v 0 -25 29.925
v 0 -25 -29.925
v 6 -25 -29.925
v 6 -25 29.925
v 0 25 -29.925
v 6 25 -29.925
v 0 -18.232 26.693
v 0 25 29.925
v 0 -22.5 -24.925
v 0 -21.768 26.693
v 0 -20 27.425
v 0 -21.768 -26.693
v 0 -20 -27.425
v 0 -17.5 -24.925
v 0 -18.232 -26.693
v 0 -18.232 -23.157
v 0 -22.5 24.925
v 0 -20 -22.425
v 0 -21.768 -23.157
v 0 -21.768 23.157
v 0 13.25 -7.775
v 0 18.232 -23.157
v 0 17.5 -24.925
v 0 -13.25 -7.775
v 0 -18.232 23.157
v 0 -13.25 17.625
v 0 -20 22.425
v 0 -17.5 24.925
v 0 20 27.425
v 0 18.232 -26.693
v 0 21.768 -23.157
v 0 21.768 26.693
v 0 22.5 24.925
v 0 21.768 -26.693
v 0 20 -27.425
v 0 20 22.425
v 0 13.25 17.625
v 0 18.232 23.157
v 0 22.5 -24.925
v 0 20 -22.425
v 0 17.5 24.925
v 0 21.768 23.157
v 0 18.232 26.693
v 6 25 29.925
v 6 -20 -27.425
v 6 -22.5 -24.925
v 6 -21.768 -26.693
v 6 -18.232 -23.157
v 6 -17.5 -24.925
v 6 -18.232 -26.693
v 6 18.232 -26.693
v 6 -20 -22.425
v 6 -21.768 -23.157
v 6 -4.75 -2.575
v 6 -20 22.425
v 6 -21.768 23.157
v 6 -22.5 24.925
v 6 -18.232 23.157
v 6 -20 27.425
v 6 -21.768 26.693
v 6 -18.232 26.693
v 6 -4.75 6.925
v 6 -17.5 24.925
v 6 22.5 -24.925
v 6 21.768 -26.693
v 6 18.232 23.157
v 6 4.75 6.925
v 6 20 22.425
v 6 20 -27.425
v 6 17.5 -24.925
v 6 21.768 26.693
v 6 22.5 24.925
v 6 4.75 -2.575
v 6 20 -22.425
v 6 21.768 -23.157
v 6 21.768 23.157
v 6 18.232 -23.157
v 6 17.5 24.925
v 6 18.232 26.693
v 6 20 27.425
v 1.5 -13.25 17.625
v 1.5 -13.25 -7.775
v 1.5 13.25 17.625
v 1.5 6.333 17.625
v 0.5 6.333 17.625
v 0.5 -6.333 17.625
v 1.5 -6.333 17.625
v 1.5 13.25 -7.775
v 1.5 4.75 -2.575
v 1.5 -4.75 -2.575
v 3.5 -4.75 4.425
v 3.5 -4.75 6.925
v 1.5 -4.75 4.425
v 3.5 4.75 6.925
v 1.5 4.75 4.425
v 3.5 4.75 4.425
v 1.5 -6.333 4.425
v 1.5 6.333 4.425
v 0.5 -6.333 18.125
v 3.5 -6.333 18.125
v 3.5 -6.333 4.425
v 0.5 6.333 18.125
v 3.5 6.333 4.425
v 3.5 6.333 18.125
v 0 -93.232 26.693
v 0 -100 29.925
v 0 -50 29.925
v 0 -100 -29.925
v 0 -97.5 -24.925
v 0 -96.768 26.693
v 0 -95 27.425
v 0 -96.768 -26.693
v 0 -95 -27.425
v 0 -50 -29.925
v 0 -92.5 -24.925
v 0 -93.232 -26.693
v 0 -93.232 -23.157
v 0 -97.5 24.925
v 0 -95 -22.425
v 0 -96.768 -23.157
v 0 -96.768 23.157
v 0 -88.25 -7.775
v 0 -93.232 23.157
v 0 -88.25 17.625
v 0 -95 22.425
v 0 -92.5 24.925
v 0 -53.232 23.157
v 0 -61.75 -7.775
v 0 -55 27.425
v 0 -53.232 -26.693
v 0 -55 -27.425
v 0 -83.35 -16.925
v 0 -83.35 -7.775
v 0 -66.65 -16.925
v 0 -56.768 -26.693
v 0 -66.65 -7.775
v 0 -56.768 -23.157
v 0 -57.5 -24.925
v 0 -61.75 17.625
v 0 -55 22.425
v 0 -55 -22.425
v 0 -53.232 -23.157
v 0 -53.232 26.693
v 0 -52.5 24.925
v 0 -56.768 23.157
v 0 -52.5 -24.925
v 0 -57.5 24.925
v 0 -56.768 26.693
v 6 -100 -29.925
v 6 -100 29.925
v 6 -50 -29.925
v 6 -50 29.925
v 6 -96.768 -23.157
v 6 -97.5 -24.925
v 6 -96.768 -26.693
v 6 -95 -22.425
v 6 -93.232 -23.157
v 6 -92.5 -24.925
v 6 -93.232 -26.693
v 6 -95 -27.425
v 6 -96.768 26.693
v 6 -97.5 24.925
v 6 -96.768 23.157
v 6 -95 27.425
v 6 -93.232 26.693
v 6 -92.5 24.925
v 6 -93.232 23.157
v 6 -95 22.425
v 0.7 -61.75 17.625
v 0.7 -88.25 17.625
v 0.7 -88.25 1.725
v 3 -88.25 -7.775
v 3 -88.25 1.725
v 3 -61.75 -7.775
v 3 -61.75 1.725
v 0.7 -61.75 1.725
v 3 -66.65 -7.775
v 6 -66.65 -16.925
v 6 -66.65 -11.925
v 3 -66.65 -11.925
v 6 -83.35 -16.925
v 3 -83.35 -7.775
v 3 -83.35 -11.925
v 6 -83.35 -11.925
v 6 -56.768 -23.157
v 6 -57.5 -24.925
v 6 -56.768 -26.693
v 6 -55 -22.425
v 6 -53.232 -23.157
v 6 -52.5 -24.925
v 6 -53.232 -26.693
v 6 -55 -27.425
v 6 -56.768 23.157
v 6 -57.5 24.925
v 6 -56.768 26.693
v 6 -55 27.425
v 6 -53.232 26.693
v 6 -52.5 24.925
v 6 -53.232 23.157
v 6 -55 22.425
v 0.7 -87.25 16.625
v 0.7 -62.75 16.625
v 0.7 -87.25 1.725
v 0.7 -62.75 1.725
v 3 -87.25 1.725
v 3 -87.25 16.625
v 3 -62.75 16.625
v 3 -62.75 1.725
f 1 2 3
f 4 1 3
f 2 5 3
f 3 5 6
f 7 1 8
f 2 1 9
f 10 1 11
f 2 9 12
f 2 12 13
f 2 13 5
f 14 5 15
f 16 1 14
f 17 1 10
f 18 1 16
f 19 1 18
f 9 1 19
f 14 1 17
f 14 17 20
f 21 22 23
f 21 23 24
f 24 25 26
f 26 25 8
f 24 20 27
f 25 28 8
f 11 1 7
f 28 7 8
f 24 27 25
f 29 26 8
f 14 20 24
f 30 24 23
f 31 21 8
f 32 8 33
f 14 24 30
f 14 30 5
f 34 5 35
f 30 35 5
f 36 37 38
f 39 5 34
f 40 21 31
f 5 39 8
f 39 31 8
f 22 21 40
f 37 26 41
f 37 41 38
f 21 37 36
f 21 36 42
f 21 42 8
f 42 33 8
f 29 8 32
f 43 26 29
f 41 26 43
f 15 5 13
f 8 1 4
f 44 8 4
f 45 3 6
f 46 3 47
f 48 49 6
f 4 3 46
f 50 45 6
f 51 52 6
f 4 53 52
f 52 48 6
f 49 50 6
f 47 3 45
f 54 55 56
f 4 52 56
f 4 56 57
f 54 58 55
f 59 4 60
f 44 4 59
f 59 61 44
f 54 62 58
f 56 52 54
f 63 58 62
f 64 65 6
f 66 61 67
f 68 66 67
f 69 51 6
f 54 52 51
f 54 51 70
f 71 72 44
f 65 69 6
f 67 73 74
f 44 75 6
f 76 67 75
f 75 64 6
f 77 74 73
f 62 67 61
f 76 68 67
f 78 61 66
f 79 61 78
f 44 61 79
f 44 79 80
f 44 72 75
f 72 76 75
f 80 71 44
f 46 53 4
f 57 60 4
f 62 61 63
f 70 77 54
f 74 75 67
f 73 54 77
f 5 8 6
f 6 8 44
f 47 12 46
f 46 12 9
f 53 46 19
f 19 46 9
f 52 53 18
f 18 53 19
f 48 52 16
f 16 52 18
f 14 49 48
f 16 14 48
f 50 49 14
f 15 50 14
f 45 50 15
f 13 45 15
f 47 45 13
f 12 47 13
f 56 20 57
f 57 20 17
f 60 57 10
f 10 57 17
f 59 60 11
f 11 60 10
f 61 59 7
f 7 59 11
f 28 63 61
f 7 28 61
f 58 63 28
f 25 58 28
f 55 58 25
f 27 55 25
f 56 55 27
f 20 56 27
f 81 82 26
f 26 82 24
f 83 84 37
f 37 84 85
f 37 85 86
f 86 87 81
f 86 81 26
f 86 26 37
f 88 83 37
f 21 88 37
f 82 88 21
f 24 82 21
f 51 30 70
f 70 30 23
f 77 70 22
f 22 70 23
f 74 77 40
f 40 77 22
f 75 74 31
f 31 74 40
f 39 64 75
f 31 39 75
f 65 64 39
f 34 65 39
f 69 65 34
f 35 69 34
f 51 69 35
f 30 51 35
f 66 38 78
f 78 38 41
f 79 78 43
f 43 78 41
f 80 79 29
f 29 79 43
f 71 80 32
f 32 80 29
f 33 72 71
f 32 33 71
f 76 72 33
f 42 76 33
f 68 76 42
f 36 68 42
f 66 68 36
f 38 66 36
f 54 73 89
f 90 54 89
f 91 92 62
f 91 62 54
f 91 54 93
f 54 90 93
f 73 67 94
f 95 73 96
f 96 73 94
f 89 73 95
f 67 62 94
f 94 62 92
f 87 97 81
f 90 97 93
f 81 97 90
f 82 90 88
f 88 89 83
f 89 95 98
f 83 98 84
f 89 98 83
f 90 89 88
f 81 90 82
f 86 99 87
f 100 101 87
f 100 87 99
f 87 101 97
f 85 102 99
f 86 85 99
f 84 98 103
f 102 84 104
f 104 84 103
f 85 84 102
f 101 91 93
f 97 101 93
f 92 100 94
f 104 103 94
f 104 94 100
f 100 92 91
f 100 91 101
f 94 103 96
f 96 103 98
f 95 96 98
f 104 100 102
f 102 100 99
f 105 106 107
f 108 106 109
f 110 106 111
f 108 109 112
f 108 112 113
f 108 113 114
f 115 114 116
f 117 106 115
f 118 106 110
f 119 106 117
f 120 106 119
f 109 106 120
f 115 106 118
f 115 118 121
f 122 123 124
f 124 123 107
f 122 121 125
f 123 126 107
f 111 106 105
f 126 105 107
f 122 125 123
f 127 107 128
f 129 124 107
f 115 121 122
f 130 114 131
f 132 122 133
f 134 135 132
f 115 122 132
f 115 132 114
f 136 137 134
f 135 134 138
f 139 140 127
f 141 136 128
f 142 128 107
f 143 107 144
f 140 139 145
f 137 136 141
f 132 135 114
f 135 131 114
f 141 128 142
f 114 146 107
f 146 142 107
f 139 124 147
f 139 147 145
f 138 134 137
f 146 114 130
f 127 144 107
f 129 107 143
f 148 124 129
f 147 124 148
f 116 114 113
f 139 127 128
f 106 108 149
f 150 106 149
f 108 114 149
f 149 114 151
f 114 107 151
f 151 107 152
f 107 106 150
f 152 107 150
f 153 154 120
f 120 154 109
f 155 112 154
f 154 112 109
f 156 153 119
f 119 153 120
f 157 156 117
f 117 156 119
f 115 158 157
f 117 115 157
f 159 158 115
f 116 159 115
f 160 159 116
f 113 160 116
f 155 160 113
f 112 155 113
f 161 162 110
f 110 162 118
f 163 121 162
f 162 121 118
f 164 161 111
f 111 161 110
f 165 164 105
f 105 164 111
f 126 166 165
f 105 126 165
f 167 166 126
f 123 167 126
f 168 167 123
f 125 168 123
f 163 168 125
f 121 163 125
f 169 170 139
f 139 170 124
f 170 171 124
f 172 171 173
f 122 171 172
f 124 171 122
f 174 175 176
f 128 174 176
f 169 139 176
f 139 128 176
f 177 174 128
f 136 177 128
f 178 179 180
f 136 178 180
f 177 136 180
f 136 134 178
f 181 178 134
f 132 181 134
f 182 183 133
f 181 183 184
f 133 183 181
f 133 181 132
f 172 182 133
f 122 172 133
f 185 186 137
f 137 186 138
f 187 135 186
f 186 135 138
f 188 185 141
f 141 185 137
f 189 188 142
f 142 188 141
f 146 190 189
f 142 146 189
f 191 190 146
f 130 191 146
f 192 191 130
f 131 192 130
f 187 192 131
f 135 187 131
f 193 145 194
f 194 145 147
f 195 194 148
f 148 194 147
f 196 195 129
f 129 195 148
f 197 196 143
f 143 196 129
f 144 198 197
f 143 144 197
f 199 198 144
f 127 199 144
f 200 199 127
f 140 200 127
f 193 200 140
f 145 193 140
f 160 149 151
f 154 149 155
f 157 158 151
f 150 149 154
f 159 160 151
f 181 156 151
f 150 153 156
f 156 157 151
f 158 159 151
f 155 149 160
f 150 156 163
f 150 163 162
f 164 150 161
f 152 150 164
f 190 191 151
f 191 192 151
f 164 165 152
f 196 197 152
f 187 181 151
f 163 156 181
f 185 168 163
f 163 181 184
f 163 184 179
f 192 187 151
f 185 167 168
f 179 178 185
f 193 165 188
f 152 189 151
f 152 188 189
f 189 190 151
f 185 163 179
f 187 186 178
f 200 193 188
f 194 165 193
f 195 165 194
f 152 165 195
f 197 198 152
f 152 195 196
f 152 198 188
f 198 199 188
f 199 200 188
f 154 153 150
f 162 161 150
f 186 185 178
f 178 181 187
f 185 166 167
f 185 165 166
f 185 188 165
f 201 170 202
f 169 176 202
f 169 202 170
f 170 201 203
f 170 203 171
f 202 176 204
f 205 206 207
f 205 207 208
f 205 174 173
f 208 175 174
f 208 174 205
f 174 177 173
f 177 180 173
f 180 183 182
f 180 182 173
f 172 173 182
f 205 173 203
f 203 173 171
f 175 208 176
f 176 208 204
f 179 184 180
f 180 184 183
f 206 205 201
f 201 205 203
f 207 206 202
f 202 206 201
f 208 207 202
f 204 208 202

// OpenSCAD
// file: PiCameraMount.scad
/*
 * openSCAD for a simple mount for the Raspberry PI Camera Module
 *
 * This file is not for standalone use - it's included in to another
 * openSCAN file for including in to another model.
 *
 * Copyright 2015 Peter T Mount
 * 
 * Licensed under the Apache License, Version 2.0 (the "License");
 * you may not use this file except in compliance with the License.
 * You may obtain a copy of the License at
 * 
 * http://www.apache.org/licenses/LICENSE-2.0
 * 
 * Unless required by applicable law or agreed to in writing, software
 * distributed under the License is distributed on an "AS IS" BASIS,
 * WITHOUT WARRANTIES OR CONDITIONS OF ANY KIND, either express or implied.
 * See the License for the specific language governing permissions and
 * limitations under the License.
 *
 */

/*
 * Measured dimensions of a PI Camera Module.
 *
 * These are based on actual measurements and those manually measured by Gert van Loo
 * and published on Scribd:
 *
 *		http://www.scribd.com/doc/142718448/Raspberry-Pi-Camera-Mechanical-Data
 *
 * Width & Depth are the exterior dimensions, width being the edge with the ribbon.
 *
 * We add 1.5 to these to give some room and account for the printer as it seems
 * to give a better fit.
 *
 * y offset is the height from the bottom of the center of the camera lens.
 *
 * ribbon width is just that, if required
 */
piCameraWidth=25 +1.5;
piCameraDepth=23.9 +1.5;
piCameraRibbonWidth=16.2 +0.5;
piCameraLensSize=8 +1.5;
piCameraYOffset=5.1+(piCameraLensSize/2);

/*
 * Module to render a PI camera mount.
 *
 * To use translate it into the required position so that the camera lens
 * is at the origin & pointing along the x axis.
 *
 * Then call piCameraMount(radius,mode)
 *
 * Where:
 *		width	the width of the component
 *		mode	The mode of the render
 *
 * The width must be >30mm as it's used to include the mounting hardware.
 * However you can enlarge it.
 *
 * The mode defines how it's rendered:
 *		0	Render the front panel
 *		1	Render the back panel
 *		2	Render a plain panel with just the mounting holes
 *    3	As 1 but cable exit on back is internal rather than at the bottom of the plate
 */

module piCamera(width,mode) {
	assign(
		tubeRadius=width/2,
		piCameraLensHalf=piCameraLensSize/2,
		piCameraWHalf=piCameraWidth/2,
		piCameraDHalf=piCameraDepth/2,
		offset=piCameraYOffset
	) {
		translate([0,0,piCameraYOffset/2]) union() {
			// Front panel
			difference() {
				if(mode==1 || mode==3)
					translate([6,-tubeRadius,-tubeRadius-offset]) cube([6,width,width+offset]);
				else
					translate([0,-tubeRadius,-tubeRadius-offset]) cube([6,width,width+offset]);

//				translate([4,-tubeRadius-1,-tubeRadius-offset-1]) cube([2,width+2,width+offset+2]);

				if(mode!=2) {
					// Holder for the pi camera module
					translate([4.5,-piCameraWHalf,-piCameraDHalf])
						cube([2.2,piCameraWidth,piCameraDepth]);

					// Holder for components on rear of module
					translate([6,1-piCameraWHalf,1-piCameraDHalf])
						cube([3,piCameraWidth-2,piCameraDepth-2]);
					translate([6,-piCameraWHalf,-piCameraDHalf])
						cube([3,piCameraWidth,9.5]);

					// Hole for the camera lens
					translate([-0.5,-piCameraLensHalf,2-piCameraLensSize])
						cube([6,piCameraLensSize,piCameraLensSize]);

					// Indent for ribbon holder on front of the module
					translate([2.5,-piCameraLensSize*2/3,-0.5])
						cube([3,piCameraLensSize*4/3,piCameraDHalf+1]);
		
					// Space for ribbon cable
					if(mode==1)
						translate([ 5, -piCameraRibbonWidth/2,-tubeRadius-1-offset])
							cube([3,piCameraRibbonWidth,tubeRadius+1+offset]);
					else if(mode==3) {
						translate([ 5, -piCameraRibbonWidth/2,14-tubeRadius-1-offset])
							cube([4,piCameraRibbonWidth,15]);
						translate([ 5, -piCameraRibbonWidth/2,14-tubeRadius-1-offset])
							cube([10,piCameraRibbonWidth,5]);
					}
				}

				// M4 mounting holes
				piCameraHoles(width,15);
			}
		}

	}
}

module piCameraHoles(width,h) {
	assign(tubeRadius=width/2) {
		for(h=[0:3])
			translate([-1,
				(h%2) ? (-tubeRadius+5) : (tubeRadius-5),
				(floor(h/2)) ? (-tubeRadius+5-piCameraYOffset) : (tubeRadius-5)
			])
			rotate([0,90,0])
			cylinder(h=15,r=2.5);
	}
}
// main file
/*
 * openSCAD for a simple mount for the Raspberry PI Camera Module
 *
 * This file is not for standalone use - it's included in to another
 * openSCAN file for including in to another model.
 *
 * Copyright 2015 Peter T Mount
 * 
 * Licensed under the Apache License, Version 2.0 (the "License");
 * you may not use this file except in compliance with the License.
 * You may obtain a copy of the License at
 * 
 * http://www.apache.org/licenses/LICENSE-2.0
 * 
 * Unless required by applicable law or agreed to in writing, software
 * distributed under the License is distributed on an "AS IS" BASIS,
 * WITHOUT WARRANTIES OR CONDITIONS OF ANY KIND, either express or implied.
 * See the License for the specific language governing permissions and
 * limitations under the License.
 *
 */

include <PiCameraMount.scad>

// If you want a larger container increase the value here.
// 50 should be viewed as the minimal size for the enclosure.
piCameraStandalone(50);

/*
 * Standalone, generate a model of just the camera module with the specified radius
 */
module piCameraStandalone(radius) {
	translate([6,0,0]) rotate([0,0,180]) piCamera(radius,0);
	translate([-6,-radius*3/2,0]) piCamera(radius,3);
}
